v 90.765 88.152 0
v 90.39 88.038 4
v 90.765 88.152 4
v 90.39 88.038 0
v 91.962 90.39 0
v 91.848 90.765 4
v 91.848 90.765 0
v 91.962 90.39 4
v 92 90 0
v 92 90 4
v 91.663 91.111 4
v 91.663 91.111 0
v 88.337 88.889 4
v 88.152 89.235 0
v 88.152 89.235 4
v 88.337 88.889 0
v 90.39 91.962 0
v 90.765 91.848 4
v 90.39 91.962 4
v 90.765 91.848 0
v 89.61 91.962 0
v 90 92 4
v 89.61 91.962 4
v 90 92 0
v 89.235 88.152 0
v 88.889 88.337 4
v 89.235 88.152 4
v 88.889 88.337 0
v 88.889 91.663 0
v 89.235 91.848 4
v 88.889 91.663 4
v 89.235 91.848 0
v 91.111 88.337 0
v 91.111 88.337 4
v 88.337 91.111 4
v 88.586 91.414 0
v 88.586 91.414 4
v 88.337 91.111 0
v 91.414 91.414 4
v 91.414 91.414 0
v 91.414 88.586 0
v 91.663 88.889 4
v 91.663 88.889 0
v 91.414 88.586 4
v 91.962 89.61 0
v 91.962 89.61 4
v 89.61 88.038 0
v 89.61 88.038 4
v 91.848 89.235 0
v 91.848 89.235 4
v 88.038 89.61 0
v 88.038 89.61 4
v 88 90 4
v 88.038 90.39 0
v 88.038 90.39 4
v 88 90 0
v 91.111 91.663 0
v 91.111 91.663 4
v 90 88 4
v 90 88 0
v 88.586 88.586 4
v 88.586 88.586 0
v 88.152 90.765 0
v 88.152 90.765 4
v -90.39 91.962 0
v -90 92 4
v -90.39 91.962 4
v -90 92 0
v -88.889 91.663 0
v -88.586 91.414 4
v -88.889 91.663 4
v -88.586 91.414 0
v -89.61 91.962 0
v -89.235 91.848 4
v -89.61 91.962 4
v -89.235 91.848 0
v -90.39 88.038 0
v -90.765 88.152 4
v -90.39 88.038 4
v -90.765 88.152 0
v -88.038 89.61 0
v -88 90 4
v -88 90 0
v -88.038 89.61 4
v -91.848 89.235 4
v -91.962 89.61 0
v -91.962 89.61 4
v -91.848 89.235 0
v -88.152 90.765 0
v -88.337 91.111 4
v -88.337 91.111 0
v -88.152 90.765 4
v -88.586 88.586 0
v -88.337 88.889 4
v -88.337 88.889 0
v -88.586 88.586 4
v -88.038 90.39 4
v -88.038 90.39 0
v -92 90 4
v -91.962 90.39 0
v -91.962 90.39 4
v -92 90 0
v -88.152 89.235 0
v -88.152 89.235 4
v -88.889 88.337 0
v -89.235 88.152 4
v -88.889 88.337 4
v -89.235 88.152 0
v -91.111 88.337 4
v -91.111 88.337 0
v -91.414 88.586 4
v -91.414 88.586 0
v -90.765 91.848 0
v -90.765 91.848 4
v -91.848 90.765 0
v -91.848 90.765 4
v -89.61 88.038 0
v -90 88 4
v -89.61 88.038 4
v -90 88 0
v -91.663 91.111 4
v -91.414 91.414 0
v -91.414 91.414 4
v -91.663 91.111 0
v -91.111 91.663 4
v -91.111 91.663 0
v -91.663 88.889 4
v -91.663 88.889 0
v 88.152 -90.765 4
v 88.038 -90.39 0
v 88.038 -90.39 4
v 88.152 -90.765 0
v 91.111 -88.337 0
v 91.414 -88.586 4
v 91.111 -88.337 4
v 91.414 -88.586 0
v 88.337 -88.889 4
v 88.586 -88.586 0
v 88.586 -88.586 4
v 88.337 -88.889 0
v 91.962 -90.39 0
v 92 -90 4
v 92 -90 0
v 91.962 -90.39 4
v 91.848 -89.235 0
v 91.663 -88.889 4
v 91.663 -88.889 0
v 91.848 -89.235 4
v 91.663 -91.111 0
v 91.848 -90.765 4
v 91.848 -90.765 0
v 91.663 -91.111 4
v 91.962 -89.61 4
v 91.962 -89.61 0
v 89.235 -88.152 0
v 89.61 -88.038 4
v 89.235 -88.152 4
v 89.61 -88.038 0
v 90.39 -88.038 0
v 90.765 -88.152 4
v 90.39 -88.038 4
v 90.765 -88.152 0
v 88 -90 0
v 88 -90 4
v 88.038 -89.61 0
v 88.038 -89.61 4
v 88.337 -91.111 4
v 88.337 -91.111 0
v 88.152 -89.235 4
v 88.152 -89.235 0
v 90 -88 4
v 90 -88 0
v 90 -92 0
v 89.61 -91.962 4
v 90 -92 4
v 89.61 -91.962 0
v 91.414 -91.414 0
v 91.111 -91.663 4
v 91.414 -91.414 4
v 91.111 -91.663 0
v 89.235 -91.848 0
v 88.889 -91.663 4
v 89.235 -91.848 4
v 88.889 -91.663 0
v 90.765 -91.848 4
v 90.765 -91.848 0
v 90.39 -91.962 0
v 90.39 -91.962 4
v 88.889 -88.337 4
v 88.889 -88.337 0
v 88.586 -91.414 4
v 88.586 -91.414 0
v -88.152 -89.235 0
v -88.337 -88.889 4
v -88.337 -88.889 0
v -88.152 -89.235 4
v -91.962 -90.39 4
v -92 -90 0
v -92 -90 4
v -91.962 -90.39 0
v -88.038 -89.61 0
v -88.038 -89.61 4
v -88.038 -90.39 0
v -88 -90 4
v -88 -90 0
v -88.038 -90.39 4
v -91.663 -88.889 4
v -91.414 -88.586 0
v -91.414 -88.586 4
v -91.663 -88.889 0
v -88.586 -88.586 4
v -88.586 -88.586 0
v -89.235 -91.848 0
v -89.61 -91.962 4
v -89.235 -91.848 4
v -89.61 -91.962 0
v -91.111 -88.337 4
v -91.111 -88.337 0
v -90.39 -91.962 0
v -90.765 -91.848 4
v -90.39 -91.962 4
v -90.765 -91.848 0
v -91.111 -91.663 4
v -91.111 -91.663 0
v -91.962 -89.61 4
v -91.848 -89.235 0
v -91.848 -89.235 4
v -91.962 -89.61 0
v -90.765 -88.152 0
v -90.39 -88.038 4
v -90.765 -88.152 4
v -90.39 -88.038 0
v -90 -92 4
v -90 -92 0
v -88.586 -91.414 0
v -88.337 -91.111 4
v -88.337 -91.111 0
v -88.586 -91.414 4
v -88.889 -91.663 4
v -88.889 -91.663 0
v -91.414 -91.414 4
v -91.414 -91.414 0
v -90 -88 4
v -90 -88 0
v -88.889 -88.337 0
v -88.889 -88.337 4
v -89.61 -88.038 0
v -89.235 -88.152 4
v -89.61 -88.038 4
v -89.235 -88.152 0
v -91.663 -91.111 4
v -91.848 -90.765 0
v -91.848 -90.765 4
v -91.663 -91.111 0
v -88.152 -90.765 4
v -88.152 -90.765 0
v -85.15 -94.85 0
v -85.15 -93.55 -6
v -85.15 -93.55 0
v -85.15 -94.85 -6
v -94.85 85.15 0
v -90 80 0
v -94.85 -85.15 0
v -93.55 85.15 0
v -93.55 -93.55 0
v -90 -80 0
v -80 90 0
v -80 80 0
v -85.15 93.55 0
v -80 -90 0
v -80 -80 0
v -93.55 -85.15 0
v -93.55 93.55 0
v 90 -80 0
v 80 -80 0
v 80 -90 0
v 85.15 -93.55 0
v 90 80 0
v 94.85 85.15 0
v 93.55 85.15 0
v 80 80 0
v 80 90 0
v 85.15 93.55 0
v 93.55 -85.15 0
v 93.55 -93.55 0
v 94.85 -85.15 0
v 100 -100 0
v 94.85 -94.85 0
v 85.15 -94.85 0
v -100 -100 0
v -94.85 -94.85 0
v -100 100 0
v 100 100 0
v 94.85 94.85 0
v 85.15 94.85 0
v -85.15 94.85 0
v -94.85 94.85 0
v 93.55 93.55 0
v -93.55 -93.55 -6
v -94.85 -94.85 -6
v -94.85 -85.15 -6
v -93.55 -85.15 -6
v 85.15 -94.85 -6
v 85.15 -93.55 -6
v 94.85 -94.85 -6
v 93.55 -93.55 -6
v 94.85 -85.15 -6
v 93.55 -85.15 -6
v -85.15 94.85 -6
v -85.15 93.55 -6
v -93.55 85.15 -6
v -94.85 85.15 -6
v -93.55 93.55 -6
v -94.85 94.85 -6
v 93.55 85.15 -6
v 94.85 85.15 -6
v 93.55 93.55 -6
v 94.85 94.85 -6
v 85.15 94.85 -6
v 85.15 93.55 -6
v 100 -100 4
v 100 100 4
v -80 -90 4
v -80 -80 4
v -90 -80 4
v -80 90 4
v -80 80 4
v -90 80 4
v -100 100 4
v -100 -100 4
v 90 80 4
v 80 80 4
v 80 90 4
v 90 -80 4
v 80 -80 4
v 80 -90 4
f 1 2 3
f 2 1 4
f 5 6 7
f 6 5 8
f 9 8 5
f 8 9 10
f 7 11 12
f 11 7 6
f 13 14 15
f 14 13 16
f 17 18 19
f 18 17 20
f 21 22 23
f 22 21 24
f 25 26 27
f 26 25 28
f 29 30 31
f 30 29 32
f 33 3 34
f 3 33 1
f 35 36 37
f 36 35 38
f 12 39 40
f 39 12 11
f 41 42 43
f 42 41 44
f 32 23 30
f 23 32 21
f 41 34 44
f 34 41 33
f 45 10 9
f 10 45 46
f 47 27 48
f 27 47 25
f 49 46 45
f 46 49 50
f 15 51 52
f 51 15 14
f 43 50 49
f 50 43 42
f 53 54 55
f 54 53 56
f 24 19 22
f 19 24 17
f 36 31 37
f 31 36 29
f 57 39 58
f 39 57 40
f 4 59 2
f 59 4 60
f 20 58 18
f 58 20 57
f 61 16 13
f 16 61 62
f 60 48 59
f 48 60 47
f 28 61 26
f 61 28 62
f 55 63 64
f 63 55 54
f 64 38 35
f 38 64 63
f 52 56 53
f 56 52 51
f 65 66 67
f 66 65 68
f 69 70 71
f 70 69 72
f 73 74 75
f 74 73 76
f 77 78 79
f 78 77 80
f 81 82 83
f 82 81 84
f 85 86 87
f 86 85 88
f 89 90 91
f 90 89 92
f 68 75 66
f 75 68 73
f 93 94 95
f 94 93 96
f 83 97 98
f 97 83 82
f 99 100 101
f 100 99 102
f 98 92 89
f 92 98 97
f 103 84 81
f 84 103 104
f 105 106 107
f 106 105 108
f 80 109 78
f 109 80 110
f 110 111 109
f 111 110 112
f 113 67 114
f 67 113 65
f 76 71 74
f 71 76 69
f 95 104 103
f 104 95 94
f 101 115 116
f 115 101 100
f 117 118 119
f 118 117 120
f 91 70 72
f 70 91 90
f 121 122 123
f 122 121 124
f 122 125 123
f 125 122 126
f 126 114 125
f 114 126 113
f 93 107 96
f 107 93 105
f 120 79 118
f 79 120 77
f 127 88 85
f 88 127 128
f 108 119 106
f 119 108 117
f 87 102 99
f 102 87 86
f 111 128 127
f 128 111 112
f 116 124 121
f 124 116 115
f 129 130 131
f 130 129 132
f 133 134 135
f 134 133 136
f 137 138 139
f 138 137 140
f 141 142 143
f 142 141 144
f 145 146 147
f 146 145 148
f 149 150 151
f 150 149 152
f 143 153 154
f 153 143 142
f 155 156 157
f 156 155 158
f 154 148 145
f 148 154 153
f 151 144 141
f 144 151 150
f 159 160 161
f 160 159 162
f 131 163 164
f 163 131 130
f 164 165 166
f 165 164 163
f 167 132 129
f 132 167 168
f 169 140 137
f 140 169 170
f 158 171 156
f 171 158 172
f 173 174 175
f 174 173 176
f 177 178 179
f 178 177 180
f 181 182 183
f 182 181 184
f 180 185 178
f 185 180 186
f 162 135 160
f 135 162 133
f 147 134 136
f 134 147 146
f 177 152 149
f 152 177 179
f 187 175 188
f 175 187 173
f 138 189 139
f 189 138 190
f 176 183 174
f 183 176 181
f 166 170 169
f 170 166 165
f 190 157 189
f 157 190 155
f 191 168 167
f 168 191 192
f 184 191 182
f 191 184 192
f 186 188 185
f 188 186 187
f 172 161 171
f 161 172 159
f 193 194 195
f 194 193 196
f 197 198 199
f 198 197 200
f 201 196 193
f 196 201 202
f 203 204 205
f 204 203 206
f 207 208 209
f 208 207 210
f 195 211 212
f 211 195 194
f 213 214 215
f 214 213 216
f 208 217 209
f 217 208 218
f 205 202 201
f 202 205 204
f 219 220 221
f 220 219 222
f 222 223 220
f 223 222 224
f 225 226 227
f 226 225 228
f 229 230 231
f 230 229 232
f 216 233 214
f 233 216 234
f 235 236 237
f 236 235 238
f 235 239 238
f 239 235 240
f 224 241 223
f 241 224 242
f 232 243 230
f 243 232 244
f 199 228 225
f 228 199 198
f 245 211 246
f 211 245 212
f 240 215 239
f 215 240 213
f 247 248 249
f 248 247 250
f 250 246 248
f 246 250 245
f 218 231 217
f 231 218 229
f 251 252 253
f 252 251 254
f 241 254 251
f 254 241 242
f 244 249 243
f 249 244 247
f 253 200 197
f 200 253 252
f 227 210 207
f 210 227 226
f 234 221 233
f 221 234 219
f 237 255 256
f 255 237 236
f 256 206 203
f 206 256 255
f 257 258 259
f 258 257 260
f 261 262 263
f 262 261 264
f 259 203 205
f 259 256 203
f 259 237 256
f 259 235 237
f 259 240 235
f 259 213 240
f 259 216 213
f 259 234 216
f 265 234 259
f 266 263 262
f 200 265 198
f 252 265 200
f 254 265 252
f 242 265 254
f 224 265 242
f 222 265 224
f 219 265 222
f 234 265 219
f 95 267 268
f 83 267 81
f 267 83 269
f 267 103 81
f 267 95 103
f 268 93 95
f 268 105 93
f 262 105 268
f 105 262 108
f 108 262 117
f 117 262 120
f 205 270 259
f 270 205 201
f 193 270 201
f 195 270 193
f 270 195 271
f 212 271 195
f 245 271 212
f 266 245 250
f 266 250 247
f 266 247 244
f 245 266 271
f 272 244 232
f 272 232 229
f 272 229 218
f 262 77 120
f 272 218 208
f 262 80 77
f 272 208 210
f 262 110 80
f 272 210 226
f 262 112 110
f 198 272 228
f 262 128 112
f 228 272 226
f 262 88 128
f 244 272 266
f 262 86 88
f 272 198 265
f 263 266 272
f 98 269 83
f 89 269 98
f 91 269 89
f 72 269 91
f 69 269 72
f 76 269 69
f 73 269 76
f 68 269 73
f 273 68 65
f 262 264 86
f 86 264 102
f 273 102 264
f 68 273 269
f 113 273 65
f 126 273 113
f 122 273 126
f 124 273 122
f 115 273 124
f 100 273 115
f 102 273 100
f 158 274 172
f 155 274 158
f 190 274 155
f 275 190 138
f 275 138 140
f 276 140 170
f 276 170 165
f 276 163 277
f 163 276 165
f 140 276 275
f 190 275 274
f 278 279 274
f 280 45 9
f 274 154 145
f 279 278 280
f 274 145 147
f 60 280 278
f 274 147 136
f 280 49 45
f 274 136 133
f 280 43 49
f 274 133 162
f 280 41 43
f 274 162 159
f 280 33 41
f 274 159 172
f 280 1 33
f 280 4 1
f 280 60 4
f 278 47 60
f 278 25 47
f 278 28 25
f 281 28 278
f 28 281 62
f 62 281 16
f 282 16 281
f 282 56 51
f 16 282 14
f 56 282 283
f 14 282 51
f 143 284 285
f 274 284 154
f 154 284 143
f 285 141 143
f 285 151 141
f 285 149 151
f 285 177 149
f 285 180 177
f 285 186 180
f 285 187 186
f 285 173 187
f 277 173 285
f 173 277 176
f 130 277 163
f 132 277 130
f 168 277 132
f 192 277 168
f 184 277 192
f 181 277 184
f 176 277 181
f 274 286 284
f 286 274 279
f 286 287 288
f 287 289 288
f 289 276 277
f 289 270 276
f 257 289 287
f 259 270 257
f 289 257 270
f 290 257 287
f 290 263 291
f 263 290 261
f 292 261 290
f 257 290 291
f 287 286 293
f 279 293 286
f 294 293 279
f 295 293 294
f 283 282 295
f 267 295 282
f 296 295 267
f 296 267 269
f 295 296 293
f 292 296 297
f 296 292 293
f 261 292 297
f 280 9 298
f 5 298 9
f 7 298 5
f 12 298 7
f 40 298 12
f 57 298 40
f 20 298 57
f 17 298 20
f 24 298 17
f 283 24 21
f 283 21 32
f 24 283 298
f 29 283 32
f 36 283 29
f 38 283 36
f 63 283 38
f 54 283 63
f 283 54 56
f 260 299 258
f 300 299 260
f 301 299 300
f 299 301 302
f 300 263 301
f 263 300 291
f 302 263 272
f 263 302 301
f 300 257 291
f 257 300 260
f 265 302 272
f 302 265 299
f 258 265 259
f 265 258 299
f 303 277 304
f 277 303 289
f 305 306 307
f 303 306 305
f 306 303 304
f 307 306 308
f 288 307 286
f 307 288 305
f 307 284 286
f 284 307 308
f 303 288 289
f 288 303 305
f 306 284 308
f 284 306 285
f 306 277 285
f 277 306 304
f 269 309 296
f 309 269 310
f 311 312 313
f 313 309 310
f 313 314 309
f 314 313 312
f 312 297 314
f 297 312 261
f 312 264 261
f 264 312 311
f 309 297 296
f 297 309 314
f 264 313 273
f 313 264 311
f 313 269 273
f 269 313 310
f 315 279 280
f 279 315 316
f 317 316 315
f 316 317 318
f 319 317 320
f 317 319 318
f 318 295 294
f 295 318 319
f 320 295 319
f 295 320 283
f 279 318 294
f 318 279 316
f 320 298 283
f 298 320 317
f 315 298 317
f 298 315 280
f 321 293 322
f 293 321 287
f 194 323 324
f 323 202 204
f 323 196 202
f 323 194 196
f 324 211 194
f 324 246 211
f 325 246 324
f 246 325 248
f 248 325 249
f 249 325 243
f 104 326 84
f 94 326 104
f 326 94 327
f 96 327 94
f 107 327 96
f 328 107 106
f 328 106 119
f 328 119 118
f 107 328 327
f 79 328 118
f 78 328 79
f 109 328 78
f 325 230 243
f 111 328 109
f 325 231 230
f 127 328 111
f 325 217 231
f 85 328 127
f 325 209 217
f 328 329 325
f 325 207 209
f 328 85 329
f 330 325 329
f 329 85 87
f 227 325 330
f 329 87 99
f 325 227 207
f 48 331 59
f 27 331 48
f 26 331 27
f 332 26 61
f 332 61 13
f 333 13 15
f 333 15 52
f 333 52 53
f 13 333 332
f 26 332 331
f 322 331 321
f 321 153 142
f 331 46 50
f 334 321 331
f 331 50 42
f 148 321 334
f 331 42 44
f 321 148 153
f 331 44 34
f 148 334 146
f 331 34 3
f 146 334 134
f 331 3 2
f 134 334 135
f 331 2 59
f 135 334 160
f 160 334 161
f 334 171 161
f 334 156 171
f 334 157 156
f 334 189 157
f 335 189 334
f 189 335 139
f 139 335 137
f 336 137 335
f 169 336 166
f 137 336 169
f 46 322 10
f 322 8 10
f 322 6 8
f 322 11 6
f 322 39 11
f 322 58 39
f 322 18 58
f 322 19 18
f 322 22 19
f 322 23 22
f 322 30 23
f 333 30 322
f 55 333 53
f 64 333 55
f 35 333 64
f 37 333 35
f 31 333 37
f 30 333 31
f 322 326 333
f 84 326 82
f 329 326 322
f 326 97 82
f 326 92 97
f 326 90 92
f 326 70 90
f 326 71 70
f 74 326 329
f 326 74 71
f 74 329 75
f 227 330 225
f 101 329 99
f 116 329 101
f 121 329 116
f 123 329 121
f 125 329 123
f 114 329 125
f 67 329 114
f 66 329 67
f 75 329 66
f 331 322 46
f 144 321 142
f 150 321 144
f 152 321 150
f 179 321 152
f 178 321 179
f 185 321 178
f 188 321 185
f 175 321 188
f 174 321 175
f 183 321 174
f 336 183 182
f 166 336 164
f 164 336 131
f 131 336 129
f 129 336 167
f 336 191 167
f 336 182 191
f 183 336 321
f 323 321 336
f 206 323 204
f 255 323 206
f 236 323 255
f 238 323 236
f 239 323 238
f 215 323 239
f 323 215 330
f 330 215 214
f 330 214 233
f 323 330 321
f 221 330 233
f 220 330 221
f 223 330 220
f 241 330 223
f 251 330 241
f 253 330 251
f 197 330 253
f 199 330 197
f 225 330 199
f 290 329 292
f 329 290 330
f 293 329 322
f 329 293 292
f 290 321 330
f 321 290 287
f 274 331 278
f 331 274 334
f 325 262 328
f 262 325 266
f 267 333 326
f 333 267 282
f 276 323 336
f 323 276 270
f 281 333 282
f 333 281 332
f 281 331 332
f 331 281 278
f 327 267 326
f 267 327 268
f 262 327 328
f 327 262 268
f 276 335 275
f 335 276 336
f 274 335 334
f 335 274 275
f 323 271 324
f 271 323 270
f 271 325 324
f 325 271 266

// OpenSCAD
$fn=64;

eps=0.1;

slack = 0.5;
m3Diameter = 3.0;
m3Radius = m3Diameter/2.0;
m3ptr = m3Radius + slack;

module baseFrame() {
  difference() {
    cube(size=[200,200,4], center=true);
    cube(size=[180,180,4], center=true);
  }

  translate(v=[90,90,0])
  cube(size=[20,20, 4],center=true);

  translate(v=[-90,90,0])
  cube(size=[20,20, 4],center=true);

  translate(v=[90,-90,0])
  cube(size=[20,20, 4],center=true);

  translate(v=[-90,-90,0])
  cube(size=[20,20, 4],center=true);
}

module lugBottom() {
  difference() {
    cube(size=[9.7,9.7,6], center=true);

    translate(v=[1,1,0])
    cube(size=[9.1,9.1,5+1], center=true);
  }
  
}


module base() {

  difference() {
    union() {
      translate(v=[0,0,4/2])
        baseFrame();


      translate(v=[-90,-90,-6/2])
        lugBottom();

      mirror(v=[1,0,0])
        translate(v=[-90,-90,-6/2])
        lugBottom();

      mirror(v=[0,1,0])
        translate(v=[-90,-90,-6/2])
        lugBottom();

      mirror(v=[1,1,0])
        translate(v=[-90,-90,-6/2])
        lugBottom();
    }

    union() {
      translate(v=[90,90,0]) 
      cylinder(h = 100, r = m3ptr, $fn=32, center=true);

      translate(v=[-90,90,0]) 
      cylinder(h = 100, r = m3ptr, $fn=32, center=true);

      translate(v=[90,-90,0]) 
      cylinder(h = 100, r = m3ptr, $fn=32, center=true);

      translate(v=[-90,-90,0]) 
      cylinder(h = 100, r = m3ptr, $fn=32, center=true);
      
    }
  }
}

base();

*lugBottom();
